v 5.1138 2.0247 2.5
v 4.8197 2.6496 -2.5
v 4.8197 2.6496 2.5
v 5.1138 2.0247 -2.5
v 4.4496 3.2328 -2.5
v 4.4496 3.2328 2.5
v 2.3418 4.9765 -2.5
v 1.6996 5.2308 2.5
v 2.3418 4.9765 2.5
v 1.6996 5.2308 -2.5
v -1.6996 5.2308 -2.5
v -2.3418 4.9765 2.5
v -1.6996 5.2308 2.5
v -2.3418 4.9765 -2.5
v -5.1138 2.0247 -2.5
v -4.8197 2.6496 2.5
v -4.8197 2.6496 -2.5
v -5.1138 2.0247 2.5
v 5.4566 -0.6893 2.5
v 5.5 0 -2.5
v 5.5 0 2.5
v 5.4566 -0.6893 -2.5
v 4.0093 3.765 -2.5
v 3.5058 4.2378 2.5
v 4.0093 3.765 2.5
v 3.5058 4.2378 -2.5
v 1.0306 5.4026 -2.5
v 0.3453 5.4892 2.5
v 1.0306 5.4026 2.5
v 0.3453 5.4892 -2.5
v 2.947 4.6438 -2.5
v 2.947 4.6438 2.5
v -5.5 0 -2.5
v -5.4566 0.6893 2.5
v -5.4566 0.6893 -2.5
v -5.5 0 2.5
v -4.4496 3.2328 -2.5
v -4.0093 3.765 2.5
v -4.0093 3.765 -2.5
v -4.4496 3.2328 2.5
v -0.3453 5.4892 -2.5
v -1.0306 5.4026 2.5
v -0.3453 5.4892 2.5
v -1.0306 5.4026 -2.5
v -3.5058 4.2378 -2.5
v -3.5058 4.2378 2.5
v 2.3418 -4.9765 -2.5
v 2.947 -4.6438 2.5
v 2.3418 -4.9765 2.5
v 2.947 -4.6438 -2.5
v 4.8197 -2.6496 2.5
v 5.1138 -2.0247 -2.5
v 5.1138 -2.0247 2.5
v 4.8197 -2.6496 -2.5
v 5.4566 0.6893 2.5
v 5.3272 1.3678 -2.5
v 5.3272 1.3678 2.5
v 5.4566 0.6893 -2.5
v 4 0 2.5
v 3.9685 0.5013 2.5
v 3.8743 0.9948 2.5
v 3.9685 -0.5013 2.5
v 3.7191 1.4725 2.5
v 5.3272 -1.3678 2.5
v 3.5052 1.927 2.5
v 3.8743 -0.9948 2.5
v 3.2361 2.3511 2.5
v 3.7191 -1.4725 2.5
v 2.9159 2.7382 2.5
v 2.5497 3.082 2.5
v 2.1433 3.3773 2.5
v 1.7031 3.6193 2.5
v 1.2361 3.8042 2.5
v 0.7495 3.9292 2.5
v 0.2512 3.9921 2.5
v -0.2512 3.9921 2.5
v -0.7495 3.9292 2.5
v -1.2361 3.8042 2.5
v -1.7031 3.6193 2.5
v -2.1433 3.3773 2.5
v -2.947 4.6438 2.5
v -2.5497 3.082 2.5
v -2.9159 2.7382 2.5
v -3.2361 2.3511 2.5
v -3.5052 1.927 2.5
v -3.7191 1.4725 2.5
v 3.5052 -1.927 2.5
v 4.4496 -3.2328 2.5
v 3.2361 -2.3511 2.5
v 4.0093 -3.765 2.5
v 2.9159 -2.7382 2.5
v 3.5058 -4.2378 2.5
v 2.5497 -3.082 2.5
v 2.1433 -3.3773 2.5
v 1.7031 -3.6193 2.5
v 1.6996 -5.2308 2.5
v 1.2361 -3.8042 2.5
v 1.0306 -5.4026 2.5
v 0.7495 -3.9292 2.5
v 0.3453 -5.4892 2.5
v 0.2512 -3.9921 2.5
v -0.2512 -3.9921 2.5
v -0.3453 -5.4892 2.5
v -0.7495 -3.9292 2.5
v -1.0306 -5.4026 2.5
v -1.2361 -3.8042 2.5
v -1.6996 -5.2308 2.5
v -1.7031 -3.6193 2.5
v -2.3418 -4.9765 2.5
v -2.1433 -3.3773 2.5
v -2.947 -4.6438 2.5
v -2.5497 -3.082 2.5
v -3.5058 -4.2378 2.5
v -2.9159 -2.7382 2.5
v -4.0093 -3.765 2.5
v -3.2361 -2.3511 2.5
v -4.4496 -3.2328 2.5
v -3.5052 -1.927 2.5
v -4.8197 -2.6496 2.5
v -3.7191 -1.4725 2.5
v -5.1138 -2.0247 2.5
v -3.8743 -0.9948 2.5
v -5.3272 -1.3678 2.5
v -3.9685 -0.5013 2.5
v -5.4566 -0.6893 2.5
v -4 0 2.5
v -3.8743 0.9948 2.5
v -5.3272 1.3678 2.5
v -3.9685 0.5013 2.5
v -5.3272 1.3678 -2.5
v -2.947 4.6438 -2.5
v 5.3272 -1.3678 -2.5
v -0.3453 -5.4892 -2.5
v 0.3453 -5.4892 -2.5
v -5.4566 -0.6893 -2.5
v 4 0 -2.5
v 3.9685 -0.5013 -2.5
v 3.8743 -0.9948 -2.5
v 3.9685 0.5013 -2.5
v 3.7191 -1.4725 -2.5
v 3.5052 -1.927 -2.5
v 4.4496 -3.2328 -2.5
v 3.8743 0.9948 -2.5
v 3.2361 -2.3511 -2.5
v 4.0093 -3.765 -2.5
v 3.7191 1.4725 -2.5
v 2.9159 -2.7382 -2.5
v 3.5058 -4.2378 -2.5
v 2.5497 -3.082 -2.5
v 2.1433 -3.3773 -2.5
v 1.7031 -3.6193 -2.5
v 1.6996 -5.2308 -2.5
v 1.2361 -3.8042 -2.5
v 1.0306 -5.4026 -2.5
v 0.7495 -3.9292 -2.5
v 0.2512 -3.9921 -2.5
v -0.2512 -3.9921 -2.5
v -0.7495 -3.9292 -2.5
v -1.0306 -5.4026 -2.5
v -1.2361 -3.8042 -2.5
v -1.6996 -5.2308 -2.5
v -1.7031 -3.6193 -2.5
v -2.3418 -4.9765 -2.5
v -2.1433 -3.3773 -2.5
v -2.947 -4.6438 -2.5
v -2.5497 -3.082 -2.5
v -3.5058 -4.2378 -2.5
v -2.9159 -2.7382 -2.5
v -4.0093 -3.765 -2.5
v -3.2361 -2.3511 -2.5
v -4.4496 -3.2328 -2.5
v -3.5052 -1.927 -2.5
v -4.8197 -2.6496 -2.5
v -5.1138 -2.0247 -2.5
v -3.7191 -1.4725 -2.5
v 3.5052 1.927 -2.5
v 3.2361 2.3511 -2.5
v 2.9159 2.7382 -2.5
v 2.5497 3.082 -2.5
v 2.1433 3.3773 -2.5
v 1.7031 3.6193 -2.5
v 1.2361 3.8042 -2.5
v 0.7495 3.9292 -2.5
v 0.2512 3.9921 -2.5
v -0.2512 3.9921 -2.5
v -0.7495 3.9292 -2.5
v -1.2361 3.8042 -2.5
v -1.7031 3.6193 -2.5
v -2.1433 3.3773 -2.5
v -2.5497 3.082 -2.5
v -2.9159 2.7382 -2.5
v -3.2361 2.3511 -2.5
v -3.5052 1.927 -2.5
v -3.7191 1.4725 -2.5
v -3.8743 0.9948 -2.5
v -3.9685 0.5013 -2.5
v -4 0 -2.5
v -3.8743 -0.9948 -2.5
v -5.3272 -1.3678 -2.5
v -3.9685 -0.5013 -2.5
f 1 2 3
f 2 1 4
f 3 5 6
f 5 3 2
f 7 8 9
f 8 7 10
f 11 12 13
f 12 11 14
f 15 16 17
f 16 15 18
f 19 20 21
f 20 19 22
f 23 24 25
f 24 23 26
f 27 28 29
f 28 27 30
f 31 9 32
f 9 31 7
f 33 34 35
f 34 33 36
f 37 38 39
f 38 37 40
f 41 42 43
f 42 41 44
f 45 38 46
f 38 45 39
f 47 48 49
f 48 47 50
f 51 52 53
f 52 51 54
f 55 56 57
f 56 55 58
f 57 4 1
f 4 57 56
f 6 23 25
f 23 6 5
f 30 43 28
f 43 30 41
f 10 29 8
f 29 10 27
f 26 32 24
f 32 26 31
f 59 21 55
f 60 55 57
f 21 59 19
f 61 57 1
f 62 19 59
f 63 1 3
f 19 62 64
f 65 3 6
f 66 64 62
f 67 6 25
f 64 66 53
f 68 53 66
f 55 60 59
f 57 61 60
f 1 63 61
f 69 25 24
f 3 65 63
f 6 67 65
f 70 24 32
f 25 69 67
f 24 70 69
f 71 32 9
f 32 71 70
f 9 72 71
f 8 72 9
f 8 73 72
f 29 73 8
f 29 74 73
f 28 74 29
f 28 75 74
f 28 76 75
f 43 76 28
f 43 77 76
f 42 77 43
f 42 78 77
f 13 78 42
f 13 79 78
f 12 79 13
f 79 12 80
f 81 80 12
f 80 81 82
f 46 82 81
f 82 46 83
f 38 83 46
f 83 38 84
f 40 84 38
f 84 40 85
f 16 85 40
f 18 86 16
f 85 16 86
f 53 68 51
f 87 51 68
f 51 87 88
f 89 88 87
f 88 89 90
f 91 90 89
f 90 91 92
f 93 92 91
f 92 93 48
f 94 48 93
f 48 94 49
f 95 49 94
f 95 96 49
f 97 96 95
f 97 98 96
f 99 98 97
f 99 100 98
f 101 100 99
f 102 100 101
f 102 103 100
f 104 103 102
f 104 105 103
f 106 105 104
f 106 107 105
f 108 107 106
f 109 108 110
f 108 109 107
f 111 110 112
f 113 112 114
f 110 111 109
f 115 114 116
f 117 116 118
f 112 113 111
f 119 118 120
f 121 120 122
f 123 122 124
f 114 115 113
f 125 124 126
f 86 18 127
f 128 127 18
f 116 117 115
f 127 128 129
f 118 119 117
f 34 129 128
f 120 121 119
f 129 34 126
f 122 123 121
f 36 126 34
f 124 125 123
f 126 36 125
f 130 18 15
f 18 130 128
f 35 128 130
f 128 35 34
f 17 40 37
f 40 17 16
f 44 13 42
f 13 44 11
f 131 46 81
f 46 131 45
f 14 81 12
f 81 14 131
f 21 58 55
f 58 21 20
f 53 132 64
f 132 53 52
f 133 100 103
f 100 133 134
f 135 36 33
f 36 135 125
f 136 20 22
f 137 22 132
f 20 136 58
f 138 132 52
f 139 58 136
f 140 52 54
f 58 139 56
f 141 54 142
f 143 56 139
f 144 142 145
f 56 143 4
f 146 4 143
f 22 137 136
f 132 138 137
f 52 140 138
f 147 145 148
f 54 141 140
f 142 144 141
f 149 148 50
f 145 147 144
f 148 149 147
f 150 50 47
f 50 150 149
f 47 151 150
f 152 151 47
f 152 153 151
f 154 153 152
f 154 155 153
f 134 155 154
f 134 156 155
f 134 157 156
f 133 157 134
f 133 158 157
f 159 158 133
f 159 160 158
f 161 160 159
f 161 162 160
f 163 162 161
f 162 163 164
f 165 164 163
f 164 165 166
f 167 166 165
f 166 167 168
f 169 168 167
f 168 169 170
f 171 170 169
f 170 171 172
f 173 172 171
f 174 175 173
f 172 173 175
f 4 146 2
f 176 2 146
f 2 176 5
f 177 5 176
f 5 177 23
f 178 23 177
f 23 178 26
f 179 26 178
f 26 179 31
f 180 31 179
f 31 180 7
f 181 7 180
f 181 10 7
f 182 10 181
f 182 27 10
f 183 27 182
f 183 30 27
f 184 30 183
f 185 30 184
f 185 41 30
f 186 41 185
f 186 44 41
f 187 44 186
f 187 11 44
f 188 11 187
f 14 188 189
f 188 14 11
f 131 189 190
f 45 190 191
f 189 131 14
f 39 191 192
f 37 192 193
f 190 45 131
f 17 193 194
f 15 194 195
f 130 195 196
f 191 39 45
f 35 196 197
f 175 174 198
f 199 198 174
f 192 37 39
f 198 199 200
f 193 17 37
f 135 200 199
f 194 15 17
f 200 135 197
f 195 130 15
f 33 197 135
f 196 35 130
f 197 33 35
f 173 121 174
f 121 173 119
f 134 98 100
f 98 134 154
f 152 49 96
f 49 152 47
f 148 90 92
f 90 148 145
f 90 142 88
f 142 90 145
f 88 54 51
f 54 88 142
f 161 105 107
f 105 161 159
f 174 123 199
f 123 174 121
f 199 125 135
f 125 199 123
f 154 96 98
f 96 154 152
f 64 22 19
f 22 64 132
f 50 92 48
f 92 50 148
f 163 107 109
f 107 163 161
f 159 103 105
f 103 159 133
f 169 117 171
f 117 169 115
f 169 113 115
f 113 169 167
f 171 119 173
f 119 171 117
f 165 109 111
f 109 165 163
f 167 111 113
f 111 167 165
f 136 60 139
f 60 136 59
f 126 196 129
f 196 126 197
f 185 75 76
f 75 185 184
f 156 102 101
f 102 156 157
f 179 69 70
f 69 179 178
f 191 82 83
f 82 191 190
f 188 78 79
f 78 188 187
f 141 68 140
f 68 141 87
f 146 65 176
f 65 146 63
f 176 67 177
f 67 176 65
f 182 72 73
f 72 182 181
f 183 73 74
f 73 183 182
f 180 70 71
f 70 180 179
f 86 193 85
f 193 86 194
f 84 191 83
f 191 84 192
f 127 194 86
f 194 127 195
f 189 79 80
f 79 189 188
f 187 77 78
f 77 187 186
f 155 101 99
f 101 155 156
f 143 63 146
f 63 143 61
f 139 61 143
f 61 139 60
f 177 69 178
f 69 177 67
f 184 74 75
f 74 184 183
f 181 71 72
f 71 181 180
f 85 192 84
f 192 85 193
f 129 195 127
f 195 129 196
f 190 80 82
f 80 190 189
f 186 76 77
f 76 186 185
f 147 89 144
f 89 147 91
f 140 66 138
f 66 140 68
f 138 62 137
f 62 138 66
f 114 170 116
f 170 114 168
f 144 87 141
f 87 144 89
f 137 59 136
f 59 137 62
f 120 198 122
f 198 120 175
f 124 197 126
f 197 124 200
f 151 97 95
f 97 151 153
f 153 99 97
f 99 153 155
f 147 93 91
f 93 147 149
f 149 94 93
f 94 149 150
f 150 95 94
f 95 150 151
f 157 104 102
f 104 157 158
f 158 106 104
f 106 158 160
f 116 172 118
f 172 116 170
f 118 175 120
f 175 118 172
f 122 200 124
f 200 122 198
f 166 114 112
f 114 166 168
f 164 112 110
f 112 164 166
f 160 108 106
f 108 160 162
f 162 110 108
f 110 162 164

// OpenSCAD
$fn = 50;


difference() {
	union() {
		translate(v = [0, 0, -2.5000000000]) {
			cylinder(h = 5, r = 5.5000000000);
		}
	}
	union() {
		translate(v = [0, 0, -100.0000000000]) {
			cylinder(h = 200, r = 4);
		}
	}
}
